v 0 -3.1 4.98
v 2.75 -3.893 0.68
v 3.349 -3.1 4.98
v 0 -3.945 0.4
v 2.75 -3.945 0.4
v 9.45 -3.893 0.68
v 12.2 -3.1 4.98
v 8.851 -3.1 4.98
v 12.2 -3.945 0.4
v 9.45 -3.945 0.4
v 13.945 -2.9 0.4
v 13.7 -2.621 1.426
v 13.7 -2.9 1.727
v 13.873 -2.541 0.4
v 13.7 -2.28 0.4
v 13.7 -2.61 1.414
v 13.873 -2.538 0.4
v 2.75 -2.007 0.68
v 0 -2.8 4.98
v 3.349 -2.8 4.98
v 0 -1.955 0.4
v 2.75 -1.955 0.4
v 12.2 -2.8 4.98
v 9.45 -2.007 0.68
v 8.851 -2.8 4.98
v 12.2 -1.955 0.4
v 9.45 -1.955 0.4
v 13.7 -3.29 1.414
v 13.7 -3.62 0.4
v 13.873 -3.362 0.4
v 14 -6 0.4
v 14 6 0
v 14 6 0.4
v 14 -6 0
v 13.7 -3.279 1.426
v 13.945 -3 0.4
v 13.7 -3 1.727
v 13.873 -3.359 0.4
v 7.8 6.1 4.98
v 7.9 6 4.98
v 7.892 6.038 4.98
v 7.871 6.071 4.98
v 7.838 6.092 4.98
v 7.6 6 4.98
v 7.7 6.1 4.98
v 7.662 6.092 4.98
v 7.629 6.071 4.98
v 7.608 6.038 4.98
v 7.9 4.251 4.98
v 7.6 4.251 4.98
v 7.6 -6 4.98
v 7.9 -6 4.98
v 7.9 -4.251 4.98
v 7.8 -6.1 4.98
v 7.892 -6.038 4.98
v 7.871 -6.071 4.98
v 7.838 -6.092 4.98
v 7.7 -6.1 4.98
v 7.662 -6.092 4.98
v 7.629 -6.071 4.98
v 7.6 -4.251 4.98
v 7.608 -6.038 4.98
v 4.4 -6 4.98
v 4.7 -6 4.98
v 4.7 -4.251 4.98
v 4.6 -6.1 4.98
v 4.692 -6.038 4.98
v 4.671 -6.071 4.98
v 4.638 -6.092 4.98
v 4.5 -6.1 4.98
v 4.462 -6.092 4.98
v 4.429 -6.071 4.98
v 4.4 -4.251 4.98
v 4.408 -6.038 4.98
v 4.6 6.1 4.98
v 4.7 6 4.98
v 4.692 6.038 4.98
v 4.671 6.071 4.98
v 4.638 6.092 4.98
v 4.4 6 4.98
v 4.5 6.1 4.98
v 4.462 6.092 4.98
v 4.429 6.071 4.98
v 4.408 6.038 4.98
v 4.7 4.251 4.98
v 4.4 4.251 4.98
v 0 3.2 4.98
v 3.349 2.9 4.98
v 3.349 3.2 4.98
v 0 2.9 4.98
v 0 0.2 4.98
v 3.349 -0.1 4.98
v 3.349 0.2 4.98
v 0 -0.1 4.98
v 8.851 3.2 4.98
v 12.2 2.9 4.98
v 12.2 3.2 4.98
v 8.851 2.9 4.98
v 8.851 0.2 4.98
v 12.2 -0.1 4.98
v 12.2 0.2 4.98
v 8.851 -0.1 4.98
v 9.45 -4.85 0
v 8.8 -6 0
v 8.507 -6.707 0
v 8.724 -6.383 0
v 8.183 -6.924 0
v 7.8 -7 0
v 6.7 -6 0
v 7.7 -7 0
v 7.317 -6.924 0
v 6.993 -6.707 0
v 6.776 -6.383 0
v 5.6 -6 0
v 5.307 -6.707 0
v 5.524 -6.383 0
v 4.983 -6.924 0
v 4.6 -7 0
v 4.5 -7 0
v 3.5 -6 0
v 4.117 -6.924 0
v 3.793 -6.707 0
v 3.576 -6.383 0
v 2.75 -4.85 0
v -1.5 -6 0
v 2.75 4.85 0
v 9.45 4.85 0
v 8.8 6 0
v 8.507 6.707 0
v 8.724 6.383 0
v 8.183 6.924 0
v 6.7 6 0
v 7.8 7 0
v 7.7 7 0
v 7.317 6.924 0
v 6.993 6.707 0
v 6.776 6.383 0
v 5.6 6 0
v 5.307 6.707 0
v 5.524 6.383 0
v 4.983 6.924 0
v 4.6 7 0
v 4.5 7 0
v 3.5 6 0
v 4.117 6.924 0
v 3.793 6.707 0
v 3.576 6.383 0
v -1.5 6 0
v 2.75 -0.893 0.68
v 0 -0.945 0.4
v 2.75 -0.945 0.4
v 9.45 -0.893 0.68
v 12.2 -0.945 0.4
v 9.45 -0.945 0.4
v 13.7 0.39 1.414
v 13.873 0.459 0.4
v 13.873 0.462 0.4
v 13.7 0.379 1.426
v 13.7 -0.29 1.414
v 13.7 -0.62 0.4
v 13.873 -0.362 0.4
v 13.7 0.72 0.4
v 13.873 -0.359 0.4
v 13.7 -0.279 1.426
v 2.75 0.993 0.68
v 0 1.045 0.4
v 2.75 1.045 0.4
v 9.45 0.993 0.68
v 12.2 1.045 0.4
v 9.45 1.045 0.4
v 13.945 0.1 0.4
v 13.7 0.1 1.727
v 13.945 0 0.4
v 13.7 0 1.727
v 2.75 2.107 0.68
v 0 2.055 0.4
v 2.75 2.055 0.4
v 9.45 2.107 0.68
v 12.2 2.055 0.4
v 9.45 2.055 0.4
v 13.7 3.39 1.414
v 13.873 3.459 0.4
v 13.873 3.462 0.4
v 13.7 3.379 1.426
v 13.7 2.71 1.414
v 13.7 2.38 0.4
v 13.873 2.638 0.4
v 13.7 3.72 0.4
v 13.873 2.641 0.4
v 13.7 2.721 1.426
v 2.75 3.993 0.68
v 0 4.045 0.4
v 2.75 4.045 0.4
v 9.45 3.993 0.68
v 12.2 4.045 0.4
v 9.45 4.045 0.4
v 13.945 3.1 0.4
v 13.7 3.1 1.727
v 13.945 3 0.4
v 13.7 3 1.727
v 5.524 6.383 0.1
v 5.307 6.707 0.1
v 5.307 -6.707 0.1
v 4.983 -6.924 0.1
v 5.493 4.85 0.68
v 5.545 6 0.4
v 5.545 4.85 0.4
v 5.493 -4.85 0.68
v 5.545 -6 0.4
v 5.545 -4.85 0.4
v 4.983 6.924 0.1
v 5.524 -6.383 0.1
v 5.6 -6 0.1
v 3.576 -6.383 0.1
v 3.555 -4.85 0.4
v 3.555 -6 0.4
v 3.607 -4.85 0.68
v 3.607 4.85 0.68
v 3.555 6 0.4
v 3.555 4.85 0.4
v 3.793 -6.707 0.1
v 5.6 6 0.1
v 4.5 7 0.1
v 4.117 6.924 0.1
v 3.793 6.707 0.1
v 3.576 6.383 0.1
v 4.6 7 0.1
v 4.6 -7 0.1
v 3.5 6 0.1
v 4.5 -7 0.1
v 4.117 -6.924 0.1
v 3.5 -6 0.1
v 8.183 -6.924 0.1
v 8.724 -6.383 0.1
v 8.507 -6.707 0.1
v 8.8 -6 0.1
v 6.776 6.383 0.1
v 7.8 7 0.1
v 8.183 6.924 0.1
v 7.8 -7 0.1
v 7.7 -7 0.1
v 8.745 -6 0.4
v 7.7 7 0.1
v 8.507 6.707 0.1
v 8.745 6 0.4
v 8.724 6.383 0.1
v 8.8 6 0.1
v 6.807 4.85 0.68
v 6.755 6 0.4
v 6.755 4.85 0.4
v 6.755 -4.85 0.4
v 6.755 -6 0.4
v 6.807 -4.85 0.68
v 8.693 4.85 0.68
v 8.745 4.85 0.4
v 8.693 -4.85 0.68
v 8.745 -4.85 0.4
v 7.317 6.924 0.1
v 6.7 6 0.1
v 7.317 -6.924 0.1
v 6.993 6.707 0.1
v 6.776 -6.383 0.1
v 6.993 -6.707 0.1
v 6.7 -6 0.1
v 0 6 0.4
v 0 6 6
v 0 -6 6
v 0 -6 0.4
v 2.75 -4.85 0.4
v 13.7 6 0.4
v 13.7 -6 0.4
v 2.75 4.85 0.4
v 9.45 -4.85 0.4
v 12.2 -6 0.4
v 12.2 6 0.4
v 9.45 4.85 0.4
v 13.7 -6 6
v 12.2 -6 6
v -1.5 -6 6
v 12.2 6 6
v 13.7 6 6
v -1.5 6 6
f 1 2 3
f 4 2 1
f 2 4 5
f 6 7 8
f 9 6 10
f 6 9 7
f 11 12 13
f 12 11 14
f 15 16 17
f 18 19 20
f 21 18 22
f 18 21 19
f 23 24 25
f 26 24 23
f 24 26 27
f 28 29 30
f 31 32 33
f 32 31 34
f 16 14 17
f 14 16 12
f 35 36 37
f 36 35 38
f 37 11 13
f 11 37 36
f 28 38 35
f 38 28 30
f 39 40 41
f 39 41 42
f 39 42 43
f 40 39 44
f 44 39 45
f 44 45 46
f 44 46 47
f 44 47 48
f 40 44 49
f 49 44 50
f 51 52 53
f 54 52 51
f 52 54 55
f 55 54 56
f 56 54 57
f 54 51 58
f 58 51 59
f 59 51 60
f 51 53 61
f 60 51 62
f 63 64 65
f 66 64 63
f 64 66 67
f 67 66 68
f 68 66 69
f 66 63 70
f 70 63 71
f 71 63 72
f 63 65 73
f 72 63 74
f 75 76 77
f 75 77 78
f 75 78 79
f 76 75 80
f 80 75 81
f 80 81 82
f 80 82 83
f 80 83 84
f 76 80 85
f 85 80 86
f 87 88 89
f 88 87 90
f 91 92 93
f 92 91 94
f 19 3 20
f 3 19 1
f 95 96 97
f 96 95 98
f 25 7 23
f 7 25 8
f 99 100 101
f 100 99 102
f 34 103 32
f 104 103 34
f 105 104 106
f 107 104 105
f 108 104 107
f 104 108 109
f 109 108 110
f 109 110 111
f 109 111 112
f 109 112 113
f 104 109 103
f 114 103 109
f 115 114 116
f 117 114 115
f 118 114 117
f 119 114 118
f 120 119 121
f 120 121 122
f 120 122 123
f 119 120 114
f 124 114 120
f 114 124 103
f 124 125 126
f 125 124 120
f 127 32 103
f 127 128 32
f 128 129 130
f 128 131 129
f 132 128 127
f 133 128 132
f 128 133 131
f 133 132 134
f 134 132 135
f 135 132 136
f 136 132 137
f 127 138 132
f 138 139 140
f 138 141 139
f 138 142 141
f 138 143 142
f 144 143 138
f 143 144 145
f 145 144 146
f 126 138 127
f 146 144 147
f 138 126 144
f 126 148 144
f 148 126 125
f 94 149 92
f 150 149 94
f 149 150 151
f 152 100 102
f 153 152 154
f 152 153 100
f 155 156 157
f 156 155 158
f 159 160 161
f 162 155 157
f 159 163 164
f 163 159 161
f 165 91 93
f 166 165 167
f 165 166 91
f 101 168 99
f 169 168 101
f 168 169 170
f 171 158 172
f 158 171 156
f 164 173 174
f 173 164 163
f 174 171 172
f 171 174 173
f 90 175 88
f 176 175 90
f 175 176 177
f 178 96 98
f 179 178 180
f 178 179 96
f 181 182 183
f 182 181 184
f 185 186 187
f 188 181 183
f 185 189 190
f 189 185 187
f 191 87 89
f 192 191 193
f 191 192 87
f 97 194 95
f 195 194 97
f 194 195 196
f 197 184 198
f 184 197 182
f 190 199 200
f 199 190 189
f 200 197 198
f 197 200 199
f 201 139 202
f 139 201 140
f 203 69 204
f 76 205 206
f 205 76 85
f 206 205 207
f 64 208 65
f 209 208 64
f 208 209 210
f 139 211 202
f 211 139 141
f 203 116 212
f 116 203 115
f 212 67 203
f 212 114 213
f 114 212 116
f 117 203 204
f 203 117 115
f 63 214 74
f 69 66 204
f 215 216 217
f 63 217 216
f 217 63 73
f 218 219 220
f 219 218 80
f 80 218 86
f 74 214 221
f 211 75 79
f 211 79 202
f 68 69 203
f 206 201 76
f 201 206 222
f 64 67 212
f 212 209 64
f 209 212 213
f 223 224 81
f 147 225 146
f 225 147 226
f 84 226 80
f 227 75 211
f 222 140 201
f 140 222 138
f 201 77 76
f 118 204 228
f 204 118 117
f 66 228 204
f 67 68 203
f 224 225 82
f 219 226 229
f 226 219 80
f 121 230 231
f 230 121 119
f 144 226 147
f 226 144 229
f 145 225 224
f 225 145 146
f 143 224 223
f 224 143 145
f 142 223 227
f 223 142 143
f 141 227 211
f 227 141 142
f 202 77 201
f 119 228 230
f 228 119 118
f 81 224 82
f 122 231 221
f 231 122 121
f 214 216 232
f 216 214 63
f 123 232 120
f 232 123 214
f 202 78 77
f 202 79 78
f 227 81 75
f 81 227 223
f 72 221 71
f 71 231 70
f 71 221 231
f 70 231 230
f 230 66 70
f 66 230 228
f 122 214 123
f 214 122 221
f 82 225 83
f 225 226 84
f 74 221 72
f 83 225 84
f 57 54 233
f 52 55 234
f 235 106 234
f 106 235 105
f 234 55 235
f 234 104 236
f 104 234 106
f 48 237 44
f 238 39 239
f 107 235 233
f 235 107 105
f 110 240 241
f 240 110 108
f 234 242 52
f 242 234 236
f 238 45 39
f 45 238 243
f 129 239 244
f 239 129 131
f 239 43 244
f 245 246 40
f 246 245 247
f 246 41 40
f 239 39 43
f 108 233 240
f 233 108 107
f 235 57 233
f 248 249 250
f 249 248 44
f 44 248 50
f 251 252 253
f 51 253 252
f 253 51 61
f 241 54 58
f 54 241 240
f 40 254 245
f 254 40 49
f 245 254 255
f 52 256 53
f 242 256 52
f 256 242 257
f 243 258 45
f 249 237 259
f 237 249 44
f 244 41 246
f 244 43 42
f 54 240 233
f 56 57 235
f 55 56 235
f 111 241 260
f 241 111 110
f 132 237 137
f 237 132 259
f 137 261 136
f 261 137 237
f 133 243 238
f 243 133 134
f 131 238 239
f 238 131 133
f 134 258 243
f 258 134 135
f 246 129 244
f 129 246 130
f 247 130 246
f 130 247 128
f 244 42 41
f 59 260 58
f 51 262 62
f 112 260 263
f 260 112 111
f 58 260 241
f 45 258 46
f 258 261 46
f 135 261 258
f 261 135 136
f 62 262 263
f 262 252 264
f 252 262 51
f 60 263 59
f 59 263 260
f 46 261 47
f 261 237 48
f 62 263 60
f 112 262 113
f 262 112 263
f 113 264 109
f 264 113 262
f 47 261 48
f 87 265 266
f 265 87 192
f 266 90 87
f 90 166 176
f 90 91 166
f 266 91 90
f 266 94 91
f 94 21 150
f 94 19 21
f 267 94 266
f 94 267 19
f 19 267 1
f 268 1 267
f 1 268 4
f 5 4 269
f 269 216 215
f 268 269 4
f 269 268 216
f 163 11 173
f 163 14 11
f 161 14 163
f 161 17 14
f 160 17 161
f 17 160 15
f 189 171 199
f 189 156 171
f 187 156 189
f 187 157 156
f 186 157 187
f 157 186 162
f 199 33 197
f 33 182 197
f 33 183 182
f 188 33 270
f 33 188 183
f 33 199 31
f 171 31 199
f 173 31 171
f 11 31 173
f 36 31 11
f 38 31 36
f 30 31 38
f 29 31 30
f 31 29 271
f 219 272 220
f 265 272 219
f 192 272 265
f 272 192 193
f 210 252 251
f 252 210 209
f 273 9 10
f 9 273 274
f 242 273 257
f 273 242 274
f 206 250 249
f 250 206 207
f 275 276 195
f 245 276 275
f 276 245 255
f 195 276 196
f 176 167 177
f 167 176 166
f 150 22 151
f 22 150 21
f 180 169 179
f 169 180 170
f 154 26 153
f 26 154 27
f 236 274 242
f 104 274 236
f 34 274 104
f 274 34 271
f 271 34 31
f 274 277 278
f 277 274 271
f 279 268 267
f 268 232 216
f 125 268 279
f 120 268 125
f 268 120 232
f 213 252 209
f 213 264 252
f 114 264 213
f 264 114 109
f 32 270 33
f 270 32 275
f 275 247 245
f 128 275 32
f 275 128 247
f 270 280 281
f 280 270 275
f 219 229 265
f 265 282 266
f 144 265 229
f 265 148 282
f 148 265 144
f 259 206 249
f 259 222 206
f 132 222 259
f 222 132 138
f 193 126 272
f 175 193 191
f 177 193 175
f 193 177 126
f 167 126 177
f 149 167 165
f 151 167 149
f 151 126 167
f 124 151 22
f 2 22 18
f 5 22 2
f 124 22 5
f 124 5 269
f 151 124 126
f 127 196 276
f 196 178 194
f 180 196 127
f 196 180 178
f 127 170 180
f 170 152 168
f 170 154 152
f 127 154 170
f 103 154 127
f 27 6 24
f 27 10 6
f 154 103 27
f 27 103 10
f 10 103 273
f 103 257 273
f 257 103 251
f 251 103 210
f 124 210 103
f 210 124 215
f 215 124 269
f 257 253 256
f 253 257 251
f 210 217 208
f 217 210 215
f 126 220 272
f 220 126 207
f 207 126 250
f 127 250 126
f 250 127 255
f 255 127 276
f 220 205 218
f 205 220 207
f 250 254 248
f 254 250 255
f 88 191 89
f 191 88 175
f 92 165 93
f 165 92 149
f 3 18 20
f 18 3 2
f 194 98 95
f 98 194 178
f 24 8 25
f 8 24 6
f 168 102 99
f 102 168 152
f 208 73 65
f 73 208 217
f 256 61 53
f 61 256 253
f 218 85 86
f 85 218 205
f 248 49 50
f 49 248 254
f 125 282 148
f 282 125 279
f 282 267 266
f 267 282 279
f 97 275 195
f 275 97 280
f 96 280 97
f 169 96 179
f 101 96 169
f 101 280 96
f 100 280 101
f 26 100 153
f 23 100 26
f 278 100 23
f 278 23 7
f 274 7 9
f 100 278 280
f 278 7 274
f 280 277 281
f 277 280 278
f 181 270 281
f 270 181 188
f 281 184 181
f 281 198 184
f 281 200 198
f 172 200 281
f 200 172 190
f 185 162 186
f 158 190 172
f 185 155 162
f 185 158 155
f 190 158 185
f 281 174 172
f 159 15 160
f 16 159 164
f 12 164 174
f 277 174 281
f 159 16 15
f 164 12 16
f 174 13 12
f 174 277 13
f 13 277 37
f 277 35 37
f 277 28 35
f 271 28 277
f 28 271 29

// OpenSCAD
// tapeFrame3

$fn = 16;

keyTopWidth = 8.0 + 0.3;
keyTopHeight = 5.0 + 0.3;
keyTopDepth = 5.0;
rimSize = 0.5 + 0.2;

frameWidth = 13.0;
frameHeight = 6.0;
frameDepth = keyTopDepth;
frameBase = 2.0;
rowOffset = 3.0;
columnXOffset = 5.0;
columnYOffset = 6.0;

tapeWidth = 12.2;
sideWallWidth = 1.5;

module key() {
    translate([-keyTopHeight / 2 - rimSize, -keyTopWidth / 2 - rimSize, -0.01]) 
        cube([keyTopHeight + rimSize * 2, keyTopWidth + rimSize * 2, rimSize]);
    translate([-keyTopHeight / 2, -keyTopWidth / 2, rimSize-0.01]) 
   //     #cube([keyTopHeight, keyTopWidth, keyTopDepth - rimSize]);
    pyramidoid();
}

module pyramidoid() {
    height = keyTopDepth - rimSize + 0.01;
    hull() {
        translate([0,0, 0]) 
            cylinder(r1 = rimSize, r2 = 0.1, h = height);
        translate([0, keyTopWidth, 0]) 
            cylinder(r1 = rimSize, r2 = 0.1, h = height);
        translate([keyTopHeight, 0, 0]) 
            cylinder(r1 = rimSize, r2 = 0.1, h = height);
        translate([keyTopHeight, keyTopWidth, 0]) 
            cylinder(r1 = rimSize, r2 = 0.1, h = height);
    }
}

module frameRow() {
    minkowski() {
        cube([frameWidth, 0.1, 0.1]);
        cylinder(d1 = frameBase, d2 = 0.2, h = frameDepth - 0.12);
    }
}

module frameColumn() {
    minkowski() {
        cube([0.1, frameHeight * 2, 0.1]);
        cylinder(d1 = frameBase, d2 = 0.2, h = frameDepth - 0.12);
    }
}

module frame() {
difference() {
    union() {
        translate([0, -rowOffset, 0]) frameRow();
        translate([0, 0, 0]) frameRow();
        translate([0, rowOffset, 0]) frameRow();
        translate([columnXOffset-0.5, -columnYOffset, 0]) frameColumn();
        translate([columnXOffset+2.7, -columnYOffset, 0]) frameColumn();
        // base plate
        translate([0, -frameHeight, 0])
           cube([frameWidth + 1, frameHeight * 2, 0.4]);
    }
    translate([tapeWidth / 2, 0, -0.01]) key();
}

translate([-sideWallWidth, -frameHeight, 0])
    cube([sideWallWidth, frameHeight * 2, frameDepth + 1.0]);
translate([tapeWidth, -frameHeight, 0])
    cube([sideWallWidth, frameHeight * 2, frameDepth + 1.0]);
}

frame();
